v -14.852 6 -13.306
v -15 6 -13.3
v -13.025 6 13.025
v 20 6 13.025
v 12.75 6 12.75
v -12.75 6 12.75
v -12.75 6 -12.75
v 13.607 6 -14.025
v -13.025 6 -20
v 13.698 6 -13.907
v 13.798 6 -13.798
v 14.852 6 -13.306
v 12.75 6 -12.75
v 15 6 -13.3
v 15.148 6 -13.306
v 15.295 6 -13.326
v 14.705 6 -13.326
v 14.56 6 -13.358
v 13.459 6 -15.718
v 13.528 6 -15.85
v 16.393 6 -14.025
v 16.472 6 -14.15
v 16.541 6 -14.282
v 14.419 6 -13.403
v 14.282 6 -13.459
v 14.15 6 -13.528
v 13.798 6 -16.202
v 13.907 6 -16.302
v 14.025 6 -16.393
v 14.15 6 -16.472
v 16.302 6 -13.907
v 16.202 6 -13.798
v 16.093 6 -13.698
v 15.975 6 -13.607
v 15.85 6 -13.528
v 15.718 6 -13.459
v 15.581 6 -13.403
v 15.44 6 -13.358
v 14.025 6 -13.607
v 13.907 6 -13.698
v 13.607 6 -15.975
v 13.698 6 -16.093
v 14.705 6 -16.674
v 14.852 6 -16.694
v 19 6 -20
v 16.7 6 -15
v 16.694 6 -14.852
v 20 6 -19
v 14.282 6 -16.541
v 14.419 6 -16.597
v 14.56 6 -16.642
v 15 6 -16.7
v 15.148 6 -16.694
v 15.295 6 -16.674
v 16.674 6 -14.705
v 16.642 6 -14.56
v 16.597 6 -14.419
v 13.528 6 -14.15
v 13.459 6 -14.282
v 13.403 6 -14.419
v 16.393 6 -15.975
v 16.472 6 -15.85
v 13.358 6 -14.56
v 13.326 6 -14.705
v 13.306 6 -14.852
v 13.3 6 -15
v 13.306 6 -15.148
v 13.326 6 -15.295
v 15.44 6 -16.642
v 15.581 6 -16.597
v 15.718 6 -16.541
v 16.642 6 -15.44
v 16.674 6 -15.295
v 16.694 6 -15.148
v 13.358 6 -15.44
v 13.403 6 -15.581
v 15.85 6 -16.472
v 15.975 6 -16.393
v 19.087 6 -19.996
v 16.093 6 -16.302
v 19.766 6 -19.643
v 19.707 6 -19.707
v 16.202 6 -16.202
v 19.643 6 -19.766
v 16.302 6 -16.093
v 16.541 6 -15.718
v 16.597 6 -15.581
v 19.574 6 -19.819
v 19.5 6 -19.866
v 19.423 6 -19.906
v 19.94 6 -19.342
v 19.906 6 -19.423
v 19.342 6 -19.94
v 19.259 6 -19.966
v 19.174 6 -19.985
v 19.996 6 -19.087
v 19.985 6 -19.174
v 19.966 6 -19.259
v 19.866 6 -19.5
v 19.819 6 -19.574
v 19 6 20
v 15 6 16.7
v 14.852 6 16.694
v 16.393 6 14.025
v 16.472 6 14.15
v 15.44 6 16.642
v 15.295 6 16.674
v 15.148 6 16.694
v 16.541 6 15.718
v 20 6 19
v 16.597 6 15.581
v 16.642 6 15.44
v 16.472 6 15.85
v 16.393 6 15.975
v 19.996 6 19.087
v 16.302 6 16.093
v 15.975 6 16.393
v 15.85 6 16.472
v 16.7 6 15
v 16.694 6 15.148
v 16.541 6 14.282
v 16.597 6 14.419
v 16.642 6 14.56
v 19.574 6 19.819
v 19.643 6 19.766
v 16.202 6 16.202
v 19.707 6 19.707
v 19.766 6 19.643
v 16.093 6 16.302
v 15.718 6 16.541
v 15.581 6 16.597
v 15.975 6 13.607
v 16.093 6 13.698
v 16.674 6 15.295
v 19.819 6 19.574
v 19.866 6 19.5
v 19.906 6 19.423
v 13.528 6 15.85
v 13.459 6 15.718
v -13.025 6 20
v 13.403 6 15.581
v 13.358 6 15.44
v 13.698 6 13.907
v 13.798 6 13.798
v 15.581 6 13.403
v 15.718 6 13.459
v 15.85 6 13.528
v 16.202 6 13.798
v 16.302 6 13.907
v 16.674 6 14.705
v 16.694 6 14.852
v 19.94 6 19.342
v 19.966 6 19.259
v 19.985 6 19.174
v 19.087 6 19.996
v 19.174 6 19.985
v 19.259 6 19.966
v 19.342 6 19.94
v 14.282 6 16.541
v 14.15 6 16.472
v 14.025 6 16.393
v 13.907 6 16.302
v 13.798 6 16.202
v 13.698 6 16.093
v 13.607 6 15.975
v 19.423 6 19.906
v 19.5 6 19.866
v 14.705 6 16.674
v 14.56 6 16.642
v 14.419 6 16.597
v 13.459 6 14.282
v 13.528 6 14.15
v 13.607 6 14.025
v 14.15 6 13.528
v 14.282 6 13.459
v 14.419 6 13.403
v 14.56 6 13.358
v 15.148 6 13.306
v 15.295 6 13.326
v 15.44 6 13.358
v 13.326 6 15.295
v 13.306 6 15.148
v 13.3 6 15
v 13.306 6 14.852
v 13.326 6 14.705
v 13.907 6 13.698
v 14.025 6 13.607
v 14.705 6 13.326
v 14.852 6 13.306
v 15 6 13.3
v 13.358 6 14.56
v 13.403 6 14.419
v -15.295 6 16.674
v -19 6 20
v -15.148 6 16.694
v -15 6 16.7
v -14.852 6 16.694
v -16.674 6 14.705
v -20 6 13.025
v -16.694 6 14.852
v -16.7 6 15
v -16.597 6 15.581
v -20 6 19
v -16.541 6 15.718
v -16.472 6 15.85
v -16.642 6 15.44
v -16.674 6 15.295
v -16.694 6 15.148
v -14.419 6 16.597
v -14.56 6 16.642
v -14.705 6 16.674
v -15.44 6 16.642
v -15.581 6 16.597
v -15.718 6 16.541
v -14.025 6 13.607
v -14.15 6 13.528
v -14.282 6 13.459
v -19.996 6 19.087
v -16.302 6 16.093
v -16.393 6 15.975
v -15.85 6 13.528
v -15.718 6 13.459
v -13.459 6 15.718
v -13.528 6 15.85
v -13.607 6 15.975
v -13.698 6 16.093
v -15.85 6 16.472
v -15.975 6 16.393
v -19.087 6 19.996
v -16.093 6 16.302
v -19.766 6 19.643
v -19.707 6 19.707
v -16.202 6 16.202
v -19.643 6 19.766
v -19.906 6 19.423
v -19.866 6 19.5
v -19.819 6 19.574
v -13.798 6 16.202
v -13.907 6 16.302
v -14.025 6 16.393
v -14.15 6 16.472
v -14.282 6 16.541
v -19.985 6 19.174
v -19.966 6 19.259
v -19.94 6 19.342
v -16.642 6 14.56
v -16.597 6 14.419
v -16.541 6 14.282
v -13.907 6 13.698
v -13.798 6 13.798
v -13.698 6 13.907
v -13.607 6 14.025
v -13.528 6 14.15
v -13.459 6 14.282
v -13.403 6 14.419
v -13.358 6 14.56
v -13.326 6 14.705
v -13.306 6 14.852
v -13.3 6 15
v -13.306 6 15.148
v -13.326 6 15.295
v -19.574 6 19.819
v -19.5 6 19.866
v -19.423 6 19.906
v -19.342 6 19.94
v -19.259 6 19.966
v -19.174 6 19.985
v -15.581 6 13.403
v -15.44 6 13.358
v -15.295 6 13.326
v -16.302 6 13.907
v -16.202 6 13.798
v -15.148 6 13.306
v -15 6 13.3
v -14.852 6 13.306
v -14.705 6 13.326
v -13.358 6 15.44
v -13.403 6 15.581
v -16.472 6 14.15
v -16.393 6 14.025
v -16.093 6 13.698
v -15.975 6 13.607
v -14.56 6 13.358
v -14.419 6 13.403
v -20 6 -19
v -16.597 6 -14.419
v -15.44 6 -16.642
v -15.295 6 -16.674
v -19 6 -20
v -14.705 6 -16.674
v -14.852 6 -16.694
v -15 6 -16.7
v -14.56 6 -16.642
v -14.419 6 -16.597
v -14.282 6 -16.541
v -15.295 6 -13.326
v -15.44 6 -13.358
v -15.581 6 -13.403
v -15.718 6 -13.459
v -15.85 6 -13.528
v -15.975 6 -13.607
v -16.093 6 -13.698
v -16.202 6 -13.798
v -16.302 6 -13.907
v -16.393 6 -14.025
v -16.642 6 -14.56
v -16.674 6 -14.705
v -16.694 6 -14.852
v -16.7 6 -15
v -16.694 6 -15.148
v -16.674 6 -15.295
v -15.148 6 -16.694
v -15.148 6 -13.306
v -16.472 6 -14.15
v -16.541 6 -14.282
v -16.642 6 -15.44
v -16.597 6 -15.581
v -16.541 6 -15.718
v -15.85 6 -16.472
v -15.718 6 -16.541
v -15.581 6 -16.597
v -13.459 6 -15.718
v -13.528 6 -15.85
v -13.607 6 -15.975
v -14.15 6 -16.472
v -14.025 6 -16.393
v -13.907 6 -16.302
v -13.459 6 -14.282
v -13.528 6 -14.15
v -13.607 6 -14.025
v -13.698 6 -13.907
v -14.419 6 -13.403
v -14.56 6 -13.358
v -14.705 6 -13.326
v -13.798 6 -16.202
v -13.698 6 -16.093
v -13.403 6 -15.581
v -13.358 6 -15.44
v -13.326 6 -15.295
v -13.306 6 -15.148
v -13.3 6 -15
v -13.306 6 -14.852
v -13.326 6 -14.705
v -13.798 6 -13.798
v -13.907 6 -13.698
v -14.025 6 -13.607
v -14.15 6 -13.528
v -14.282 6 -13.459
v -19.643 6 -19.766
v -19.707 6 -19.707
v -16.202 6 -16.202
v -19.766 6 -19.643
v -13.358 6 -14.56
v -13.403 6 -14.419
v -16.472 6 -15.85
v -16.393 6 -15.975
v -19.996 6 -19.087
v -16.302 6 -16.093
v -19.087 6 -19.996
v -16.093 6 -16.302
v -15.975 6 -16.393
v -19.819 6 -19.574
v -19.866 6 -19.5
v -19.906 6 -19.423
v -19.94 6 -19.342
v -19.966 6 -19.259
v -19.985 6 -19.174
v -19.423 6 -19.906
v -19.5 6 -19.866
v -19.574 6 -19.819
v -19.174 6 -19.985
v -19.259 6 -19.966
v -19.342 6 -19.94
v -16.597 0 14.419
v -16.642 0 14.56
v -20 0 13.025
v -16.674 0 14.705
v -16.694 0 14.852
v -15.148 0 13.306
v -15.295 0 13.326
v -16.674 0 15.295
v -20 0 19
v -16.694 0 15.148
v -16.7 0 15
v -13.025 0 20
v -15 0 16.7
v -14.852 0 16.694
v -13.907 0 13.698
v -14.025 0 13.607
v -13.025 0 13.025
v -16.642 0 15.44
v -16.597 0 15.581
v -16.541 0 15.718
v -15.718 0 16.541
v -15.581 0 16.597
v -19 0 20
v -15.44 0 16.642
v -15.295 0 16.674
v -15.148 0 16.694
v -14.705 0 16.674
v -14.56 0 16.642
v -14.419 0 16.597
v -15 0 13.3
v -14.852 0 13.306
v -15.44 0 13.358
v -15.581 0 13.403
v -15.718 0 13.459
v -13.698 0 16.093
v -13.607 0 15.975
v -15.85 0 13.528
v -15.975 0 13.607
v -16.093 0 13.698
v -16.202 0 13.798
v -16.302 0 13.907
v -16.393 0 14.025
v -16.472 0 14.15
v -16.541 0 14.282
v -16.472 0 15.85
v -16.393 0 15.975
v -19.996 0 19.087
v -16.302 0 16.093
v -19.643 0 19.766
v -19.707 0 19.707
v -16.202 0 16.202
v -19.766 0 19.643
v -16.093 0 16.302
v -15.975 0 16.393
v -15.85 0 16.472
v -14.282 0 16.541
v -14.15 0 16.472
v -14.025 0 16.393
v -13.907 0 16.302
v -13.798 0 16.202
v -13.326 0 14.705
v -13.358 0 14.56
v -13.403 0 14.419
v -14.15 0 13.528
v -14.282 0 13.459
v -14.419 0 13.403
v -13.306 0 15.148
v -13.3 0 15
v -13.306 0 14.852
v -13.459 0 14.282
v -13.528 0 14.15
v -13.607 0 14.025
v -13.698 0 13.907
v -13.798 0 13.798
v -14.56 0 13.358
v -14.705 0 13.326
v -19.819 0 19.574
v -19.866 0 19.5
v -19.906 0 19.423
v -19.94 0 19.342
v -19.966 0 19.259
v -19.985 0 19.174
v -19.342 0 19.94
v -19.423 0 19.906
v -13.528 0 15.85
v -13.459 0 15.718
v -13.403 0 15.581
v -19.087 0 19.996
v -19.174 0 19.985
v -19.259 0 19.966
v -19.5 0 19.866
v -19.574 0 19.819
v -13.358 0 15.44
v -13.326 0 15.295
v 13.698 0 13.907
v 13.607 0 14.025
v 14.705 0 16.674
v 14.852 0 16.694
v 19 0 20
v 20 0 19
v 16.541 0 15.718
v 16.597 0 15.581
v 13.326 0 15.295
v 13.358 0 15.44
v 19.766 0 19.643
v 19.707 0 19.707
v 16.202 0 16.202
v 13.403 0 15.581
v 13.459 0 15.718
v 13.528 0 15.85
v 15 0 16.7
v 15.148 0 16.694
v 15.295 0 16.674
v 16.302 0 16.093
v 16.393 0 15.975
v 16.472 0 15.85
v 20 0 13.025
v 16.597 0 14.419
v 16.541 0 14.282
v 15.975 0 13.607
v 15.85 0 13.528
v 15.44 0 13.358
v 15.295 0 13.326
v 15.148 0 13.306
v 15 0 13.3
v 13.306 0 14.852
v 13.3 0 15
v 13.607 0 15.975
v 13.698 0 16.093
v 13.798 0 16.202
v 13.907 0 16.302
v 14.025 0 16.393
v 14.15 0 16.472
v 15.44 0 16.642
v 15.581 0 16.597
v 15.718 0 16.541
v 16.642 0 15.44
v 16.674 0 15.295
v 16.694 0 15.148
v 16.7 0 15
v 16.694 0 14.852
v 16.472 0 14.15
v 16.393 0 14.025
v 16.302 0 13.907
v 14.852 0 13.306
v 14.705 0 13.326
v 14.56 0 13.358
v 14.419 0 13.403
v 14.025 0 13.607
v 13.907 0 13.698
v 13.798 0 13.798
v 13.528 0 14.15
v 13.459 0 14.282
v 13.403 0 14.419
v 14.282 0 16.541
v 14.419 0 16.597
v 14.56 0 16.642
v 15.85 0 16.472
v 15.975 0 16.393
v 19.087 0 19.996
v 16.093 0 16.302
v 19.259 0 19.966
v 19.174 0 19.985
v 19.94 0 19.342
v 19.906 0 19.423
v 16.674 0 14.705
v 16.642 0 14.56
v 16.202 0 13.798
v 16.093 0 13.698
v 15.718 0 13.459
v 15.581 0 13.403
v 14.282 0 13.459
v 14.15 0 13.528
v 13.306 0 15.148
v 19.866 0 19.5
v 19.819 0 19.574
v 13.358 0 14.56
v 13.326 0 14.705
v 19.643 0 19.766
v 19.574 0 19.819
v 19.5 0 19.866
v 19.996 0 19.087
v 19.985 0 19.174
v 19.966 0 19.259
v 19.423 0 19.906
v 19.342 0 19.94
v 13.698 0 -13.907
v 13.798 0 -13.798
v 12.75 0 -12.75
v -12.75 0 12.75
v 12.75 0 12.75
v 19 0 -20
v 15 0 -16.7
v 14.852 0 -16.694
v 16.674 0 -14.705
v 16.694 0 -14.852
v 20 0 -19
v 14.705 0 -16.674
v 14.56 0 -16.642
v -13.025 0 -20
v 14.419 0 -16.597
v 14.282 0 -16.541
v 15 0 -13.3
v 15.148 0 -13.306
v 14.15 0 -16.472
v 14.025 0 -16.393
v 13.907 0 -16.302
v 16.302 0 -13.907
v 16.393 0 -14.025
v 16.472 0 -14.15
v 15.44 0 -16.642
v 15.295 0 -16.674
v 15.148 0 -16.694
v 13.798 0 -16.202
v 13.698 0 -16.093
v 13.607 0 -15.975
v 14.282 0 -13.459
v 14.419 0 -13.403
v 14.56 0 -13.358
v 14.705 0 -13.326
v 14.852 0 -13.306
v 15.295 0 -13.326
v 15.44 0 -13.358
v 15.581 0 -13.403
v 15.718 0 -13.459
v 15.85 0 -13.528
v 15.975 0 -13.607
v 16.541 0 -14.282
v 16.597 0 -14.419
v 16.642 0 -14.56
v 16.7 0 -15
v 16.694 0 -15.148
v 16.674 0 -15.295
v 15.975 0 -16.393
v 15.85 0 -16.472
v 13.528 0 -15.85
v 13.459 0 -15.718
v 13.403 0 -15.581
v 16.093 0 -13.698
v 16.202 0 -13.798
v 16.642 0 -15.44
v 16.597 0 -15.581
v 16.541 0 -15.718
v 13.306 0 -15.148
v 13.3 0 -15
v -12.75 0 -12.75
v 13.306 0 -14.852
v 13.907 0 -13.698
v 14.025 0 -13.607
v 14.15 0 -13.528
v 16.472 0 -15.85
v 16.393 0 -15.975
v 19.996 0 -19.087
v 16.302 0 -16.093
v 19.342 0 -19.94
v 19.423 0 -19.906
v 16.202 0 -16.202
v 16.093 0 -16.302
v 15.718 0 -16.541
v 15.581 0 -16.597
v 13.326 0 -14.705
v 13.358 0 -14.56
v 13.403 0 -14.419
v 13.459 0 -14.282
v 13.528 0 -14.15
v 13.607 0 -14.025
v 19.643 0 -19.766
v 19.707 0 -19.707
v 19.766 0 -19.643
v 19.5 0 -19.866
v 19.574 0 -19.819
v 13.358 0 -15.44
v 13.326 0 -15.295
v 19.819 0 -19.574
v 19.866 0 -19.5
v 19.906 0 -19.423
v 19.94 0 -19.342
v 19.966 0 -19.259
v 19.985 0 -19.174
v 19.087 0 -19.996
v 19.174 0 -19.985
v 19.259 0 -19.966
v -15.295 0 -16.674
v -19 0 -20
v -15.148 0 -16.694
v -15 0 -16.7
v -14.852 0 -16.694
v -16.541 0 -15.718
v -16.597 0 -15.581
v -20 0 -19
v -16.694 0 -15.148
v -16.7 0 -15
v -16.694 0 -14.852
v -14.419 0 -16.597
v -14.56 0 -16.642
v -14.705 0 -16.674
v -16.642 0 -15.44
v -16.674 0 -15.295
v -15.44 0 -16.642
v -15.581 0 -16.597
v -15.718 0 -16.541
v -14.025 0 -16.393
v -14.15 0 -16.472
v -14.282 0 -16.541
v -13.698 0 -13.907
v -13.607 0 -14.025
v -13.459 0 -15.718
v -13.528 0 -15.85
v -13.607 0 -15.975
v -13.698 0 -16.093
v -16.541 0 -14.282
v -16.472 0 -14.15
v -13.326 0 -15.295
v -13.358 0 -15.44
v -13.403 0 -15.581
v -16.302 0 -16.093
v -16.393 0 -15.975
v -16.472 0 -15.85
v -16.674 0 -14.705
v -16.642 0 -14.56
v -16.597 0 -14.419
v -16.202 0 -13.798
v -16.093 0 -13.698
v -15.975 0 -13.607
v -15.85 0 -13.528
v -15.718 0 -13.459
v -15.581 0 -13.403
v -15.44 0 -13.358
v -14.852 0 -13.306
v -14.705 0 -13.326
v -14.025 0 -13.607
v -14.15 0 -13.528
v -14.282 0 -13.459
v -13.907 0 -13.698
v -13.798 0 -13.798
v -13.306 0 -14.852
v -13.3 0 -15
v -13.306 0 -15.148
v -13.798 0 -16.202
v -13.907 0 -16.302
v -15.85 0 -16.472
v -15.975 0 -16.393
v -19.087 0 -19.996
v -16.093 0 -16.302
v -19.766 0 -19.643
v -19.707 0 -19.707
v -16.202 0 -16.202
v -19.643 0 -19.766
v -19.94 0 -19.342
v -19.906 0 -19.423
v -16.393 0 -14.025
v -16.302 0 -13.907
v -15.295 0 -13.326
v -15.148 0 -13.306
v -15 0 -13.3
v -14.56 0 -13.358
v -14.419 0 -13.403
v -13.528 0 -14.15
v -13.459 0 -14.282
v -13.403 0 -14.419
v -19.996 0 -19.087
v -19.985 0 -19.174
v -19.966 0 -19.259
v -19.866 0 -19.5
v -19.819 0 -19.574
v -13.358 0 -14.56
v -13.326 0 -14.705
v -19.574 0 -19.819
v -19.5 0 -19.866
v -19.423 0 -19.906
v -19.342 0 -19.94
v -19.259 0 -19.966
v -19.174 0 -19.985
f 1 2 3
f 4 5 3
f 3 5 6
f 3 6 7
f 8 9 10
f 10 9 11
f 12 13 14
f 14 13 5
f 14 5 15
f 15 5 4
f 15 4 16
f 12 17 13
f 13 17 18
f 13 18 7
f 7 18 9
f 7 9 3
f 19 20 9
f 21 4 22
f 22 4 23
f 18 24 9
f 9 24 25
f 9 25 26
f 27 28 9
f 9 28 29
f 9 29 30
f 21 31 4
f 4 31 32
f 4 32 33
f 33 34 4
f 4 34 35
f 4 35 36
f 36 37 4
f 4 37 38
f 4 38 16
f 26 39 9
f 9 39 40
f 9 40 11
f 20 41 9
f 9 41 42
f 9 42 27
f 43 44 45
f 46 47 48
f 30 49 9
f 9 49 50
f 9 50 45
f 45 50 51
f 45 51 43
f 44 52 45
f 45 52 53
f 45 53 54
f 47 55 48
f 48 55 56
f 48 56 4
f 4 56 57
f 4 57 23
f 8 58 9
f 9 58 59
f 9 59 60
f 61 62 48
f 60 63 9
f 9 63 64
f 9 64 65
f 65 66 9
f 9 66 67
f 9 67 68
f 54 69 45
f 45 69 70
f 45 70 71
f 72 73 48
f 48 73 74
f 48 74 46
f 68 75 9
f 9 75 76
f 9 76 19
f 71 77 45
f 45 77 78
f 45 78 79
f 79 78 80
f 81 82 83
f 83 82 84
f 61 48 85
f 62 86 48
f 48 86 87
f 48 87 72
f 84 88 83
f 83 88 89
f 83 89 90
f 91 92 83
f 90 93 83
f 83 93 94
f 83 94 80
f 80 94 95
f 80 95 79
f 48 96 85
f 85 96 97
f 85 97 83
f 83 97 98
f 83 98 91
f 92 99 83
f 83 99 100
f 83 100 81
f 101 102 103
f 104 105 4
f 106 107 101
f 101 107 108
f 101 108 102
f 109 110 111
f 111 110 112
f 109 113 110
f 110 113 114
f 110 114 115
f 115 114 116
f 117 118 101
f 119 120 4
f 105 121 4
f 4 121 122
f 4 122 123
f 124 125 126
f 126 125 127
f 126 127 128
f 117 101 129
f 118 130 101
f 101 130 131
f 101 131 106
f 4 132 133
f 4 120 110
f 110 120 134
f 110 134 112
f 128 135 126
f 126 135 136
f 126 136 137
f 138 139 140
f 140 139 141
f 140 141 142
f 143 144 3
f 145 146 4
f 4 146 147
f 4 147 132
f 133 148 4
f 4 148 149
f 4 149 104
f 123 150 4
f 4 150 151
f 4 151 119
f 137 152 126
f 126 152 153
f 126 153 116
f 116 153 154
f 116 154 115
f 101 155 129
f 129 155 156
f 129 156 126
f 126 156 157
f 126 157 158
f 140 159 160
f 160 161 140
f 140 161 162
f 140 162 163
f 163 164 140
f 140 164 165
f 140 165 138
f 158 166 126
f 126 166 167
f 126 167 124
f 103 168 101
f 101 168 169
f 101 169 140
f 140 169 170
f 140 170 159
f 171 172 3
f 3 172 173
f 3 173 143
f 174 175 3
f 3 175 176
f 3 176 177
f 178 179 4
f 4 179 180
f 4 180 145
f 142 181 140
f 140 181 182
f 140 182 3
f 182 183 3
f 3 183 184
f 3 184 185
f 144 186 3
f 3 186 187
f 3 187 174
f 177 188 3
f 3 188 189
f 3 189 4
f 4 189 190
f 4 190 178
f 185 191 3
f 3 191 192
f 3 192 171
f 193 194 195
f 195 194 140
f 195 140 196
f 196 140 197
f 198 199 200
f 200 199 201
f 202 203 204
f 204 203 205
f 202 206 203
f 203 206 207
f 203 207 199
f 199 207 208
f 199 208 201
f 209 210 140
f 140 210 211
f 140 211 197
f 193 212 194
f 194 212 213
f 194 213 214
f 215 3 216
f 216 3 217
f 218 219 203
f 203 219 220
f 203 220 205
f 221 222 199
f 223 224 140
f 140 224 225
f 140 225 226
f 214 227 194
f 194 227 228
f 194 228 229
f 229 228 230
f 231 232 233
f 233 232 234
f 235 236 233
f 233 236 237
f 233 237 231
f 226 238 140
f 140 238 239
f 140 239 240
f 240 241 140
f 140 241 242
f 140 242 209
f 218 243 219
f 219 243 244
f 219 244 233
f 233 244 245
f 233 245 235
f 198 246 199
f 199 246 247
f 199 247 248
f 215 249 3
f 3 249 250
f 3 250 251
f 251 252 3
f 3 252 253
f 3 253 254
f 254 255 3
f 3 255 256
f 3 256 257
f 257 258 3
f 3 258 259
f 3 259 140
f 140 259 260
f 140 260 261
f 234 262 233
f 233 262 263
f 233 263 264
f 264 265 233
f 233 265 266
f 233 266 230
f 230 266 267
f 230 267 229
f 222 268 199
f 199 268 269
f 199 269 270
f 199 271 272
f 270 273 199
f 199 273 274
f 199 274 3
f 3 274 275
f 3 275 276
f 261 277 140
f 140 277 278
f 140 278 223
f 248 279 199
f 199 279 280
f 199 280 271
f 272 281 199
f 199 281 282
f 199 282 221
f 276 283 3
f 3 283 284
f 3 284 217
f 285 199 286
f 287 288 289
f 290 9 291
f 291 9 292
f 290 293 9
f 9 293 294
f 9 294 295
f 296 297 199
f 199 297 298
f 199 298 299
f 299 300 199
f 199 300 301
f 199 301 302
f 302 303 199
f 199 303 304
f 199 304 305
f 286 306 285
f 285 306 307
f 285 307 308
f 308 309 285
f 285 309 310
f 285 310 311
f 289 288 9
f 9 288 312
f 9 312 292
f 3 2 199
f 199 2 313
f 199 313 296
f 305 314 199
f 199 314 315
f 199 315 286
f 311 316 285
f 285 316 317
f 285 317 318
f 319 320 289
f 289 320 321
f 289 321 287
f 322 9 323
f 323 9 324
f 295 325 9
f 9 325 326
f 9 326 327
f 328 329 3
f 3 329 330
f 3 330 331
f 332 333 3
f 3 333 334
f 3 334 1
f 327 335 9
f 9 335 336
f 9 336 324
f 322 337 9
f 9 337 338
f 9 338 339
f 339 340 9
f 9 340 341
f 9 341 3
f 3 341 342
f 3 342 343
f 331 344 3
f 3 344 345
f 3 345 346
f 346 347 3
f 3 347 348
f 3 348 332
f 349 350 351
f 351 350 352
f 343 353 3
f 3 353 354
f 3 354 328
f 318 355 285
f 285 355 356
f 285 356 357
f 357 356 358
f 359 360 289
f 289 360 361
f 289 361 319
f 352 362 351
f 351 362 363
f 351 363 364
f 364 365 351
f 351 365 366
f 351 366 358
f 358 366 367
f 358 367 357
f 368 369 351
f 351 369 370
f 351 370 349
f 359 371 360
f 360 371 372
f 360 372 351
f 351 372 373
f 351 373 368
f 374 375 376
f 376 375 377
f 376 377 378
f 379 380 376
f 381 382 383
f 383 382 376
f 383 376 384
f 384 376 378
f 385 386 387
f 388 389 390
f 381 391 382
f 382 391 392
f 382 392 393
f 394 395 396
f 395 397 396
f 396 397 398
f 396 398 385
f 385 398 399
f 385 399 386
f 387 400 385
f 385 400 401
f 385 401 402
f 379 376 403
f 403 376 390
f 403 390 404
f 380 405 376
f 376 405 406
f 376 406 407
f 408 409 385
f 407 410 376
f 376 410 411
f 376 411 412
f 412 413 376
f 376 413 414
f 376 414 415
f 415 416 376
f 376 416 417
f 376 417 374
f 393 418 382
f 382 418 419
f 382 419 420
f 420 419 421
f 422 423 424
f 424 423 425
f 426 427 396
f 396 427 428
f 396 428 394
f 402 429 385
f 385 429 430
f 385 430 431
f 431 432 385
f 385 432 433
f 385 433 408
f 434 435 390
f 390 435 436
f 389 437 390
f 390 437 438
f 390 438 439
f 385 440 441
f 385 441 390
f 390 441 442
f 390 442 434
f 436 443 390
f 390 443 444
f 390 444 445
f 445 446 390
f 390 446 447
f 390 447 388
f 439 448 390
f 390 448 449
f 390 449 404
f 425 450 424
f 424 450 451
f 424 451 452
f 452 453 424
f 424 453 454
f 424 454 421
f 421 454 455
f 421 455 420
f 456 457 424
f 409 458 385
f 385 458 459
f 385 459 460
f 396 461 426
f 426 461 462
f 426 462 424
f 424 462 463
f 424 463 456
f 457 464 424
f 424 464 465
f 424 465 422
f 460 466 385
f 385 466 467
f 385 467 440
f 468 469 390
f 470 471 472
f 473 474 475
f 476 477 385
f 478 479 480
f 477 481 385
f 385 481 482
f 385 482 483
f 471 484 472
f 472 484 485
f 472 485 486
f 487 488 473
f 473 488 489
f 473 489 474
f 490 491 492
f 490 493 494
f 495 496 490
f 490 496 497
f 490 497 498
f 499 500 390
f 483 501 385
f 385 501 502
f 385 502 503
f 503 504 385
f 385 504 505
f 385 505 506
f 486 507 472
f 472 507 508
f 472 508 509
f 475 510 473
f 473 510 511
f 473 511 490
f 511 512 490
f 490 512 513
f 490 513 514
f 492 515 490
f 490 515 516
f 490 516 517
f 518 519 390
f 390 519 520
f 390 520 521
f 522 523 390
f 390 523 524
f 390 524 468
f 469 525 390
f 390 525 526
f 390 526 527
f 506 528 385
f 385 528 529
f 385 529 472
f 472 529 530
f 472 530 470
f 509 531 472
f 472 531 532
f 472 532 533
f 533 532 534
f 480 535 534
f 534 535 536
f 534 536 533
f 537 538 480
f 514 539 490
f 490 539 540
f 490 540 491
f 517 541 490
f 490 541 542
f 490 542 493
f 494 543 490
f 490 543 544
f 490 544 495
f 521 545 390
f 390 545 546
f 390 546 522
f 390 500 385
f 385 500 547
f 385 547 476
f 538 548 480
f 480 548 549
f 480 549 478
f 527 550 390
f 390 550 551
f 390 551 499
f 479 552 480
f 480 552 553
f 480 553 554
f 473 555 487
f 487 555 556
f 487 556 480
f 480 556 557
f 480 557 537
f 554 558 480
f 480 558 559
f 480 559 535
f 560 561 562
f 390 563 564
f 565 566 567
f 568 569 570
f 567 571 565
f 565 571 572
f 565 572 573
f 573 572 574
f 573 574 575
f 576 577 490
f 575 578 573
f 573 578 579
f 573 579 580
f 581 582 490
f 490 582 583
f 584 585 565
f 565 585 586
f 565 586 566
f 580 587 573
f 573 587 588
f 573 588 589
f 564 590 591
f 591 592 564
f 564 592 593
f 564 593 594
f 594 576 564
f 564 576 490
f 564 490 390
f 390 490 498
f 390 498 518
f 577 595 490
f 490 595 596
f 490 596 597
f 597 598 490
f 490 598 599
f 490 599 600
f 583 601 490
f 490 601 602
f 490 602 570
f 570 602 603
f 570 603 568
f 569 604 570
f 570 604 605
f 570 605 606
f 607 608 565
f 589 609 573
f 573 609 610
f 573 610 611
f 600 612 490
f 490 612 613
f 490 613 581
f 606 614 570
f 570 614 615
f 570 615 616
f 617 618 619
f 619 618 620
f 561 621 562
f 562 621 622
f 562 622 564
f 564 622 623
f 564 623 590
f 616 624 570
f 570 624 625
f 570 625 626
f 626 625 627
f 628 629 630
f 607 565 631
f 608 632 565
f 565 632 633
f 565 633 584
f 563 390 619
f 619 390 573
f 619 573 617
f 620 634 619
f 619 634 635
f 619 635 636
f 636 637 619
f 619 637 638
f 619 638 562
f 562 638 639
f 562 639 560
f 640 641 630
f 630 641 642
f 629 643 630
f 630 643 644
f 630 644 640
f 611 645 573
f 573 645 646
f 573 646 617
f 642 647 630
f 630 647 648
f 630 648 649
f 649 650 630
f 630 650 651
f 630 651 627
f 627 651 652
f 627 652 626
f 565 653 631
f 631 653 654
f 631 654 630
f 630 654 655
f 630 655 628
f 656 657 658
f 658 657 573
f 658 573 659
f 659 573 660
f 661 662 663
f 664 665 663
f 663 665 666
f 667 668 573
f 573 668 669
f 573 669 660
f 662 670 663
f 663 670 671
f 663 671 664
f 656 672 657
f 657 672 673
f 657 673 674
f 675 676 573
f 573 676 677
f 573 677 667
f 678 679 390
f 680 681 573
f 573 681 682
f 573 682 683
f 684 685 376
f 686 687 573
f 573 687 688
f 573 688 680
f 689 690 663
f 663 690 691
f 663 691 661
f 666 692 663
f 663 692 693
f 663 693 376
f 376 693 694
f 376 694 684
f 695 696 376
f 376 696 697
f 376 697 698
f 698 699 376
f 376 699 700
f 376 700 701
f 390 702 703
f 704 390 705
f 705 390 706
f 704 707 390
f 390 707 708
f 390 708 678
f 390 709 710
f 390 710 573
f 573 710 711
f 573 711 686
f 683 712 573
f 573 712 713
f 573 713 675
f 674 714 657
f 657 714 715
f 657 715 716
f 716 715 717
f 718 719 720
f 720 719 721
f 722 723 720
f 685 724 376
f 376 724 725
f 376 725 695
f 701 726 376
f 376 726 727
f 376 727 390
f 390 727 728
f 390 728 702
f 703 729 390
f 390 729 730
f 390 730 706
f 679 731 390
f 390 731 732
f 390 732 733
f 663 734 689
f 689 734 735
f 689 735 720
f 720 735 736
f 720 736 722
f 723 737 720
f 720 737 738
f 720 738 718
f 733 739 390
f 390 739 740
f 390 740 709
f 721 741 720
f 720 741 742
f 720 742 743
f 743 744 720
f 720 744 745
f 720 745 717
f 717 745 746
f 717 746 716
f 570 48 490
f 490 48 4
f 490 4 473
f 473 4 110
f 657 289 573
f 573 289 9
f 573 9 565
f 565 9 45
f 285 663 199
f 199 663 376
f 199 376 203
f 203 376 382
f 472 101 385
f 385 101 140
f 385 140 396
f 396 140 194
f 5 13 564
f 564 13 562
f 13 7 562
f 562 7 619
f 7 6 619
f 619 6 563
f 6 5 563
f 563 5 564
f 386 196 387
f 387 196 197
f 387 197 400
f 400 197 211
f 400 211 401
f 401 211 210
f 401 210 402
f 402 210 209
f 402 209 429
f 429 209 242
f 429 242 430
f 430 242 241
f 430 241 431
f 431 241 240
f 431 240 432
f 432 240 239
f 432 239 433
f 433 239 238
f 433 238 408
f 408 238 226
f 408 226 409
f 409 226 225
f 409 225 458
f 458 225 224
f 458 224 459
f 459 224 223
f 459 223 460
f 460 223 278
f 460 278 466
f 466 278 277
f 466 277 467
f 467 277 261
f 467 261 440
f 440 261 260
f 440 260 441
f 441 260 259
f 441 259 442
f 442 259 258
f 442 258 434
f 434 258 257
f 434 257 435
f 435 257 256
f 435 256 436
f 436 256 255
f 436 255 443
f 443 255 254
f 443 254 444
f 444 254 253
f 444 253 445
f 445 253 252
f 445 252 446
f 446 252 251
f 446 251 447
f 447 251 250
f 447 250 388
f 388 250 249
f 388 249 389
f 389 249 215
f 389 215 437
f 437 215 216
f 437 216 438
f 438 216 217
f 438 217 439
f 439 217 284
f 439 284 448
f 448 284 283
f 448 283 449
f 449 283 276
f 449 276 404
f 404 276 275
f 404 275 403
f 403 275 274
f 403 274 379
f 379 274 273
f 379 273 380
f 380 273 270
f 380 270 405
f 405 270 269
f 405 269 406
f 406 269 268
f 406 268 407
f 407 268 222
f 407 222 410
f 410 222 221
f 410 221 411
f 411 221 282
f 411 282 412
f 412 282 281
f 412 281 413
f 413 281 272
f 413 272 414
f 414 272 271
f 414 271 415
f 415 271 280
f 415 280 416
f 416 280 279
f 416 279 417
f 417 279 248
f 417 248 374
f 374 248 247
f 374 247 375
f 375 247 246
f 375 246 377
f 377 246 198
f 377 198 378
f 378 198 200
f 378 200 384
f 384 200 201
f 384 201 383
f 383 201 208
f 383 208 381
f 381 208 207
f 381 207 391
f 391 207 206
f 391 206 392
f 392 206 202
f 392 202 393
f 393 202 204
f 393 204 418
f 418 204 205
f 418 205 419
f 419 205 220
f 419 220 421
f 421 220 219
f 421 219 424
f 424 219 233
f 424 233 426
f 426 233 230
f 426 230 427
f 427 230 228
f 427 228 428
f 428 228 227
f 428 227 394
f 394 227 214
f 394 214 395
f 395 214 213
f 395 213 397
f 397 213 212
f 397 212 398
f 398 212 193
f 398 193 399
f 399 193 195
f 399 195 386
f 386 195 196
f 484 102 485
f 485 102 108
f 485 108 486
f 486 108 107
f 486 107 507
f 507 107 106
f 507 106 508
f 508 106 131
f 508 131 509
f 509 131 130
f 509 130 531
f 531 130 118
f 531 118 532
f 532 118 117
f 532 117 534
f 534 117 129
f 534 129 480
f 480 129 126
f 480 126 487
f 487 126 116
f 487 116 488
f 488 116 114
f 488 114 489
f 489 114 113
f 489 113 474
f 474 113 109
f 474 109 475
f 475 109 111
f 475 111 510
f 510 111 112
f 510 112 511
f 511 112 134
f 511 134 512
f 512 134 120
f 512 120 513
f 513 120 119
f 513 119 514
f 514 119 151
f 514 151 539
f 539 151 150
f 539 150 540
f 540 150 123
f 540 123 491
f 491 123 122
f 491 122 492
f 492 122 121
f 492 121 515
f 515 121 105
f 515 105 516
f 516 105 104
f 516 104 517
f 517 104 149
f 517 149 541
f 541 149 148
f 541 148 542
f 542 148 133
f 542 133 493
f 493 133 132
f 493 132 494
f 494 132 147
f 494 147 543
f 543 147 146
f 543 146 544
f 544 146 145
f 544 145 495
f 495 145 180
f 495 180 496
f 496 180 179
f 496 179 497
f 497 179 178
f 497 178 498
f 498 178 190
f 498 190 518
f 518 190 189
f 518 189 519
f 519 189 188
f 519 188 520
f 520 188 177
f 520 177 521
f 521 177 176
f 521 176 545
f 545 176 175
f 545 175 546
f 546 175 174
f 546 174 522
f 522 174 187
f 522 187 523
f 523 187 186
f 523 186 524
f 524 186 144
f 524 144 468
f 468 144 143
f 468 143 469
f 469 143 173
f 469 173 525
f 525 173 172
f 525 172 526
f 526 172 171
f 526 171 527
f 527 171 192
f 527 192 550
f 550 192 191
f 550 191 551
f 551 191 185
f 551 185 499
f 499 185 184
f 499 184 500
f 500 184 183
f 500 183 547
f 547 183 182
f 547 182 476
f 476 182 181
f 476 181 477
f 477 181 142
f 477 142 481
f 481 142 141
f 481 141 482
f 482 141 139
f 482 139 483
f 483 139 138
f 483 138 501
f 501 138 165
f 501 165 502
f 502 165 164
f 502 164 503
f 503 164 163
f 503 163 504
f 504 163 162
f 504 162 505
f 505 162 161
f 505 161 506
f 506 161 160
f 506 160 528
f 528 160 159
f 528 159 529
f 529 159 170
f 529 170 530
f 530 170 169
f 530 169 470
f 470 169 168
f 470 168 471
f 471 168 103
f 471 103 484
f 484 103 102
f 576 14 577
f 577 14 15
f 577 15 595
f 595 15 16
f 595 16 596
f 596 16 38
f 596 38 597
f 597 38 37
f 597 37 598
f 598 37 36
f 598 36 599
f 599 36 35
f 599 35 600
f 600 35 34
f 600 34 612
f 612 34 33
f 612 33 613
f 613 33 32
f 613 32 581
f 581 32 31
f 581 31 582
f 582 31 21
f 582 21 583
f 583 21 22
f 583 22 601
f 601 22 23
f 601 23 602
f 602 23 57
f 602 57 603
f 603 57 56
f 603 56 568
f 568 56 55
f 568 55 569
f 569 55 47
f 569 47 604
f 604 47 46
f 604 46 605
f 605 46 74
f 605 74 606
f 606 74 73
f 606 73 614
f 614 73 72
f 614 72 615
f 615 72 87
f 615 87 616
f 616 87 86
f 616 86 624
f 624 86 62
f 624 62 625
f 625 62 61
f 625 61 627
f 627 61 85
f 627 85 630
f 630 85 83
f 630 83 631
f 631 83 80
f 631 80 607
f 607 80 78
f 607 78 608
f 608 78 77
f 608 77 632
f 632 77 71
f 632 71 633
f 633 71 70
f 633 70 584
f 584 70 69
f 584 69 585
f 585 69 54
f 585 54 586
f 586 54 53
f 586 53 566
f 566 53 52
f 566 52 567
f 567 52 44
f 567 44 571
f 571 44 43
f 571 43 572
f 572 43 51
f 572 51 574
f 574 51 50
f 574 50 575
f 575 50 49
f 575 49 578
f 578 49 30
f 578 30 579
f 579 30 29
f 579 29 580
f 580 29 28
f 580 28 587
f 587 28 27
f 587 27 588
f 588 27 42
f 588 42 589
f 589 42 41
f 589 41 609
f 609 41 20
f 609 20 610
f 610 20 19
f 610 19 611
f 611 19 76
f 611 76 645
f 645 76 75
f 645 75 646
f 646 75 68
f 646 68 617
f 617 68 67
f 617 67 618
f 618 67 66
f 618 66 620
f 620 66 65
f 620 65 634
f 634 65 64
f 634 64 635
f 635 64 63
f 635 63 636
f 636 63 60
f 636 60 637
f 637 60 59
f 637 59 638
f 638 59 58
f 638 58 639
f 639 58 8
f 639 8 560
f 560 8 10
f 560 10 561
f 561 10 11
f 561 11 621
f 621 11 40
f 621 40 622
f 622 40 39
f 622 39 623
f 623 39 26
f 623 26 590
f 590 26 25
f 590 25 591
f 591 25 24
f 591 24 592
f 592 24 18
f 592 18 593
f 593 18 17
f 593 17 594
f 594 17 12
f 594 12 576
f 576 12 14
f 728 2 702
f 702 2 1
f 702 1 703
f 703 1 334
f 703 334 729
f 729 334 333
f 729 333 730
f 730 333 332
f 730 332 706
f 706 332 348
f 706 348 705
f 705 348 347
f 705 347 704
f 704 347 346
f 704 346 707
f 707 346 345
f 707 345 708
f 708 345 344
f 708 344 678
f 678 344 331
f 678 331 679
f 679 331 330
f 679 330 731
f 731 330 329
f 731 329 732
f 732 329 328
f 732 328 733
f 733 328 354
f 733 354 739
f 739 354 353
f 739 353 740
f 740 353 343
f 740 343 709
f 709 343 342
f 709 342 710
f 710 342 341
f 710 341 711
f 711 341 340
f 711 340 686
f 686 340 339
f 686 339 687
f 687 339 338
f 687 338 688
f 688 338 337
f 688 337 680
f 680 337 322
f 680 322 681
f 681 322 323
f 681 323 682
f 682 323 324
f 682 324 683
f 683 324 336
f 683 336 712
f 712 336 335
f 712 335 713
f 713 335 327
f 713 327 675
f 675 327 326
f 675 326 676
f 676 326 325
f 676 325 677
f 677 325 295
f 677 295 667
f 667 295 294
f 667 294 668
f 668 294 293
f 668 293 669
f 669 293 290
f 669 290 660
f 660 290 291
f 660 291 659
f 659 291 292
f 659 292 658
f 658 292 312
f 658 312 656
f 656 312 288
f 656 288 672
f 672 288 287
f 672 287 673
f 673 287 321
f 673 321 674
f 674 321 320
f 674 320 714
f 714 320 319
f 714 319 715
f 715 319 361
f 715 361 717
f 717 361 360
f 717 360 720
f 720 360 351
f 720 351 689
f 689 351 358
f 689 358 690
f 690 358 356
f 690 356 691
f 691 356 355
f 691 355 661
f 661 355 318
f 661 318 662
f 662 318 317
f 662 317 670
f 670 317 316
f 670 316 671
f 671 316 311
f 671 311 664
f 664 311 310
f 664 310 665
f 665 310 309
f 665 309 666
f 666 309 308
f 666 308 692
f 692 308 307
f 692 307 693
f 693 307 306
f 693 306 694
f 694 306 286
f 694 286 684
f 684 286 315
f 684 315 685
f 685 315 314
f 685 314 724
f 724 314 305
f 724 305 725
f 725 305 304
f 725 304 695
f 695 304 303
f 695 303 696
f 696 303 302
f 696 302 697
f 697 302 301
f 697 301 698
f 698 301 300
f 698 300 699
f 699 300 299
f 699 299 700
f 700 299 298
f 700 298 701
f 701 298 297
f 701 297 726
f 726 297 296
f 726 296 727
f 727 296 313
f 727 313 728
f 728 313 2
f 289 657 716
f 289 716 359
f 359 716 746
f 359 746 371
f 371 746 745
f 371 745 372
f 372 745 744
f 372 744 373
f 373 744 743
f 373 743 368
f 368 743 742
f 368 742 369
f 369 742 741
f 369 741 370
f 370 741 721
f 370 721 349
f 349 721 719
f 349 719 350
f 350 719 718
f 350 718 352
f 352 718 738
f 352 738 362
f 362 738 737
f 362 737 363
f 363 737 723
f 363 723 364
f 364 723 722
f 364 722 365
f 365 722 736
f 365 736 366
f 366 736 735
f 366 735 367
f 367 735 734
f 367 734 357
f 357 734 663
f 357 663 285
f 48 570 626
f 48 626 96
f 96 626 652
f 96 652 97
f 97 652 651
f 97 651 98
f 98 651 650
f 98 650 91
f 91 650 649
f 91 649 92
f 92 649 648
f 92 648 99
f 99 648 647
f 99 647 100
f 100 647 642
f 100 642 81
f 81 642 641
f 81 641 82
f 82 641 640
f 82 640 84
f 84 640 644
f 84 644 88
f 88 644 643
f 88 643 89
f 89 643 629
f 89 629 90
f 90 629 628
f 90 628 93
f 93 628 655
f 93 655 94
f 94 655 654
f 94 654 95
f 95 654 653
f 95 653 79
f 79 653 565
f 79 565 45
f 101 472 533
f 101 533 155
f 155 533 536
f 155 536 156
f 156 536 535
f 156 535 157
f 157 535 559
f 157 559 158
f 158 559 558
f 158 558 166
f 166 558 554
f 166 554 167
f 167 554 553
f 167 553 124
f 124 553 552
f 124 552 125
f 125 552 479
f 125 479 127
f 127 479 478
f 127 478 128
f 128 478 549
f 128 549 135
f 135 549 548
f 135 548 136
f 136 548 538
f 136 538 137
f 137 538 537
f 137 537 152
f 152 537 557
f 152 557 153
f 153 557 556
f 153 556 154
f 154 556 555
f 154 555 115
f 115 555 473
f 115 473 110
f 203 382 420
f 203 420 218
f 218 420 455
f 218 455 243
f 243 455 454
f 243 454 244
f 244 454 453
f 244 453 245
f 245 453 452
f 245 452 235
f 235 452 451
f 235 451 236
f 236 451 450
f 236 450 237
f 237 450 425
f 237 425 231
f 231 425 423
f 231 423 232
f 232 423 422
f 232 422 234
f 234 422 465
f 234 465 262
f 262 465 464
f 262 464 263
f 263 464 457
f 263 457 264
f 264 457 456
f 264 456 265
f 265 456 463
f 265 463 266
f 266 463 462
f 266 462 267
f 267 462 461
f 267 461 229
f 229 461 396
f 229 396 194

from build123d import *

# Parameters (mm, degrees)
SKETCH1_W           = 40
SKETCH1_H           = 40
SKETCH1_W_2         = 25.5
SKETCH1_H_2         = 25.5
BOSS_EXTRUDE1_DEPTH = 6
SKETCH5_R           = 1.7
CUT_EXTRUDE1_DEPTH  = 29.91366459
FILLET1_R           = 1


with BuildPart() as part:
    # Sketch1 → Boss-Extrude1 (new body)
    with BuildSketch(Plane(origin=(0, 0, 0), x_dir=(1, 0, 0), z_dir=(0, 1, 0))):
        Rectangle(SKETCH1_W, SKETCH1_H)
        Rectangle(SKETCH1_W_2, SKETCH1_H_2, mode=Mode.SUBTRACT)
    extrude(amount=BOSS_EXTRUDE1_DEPTH)

    # Sketch5 → Cut-Extrude1 (cut, through all)
    with BuildSketch(Plane.XZ.offset(-6)):
        with Locations(Location((-15, 15, 0), (0, 0, 270))):
            Circle(SKETCH5_R)
        with Locations(Location((-15, -15, 0), (0, 0, 270))):
            Circle(SKETCH5_R)
        with Locations(Location((15, -15, 0), (0, 0, 270))):
            Circle(SKETCH5_R)
        with Locations(Location((15, 15, 0), (0, 0, 270))):
            Circle(SKETCH5_R)
    extrude(amount=CUT_EXTRUDE1_DEPTH, mode=Mode.SUBTRACT)

    # Fillet1
    fillet1_edges = [part.edges().sort_by_distance(p)[0] for p in [
        (20, 3, 20),
        (-20, 3, 20),
        (-20, 3, -20),
        (20, 3, -20),
    ]]
    fillet(fillet1_edges, radius=FILLET1_R)


solid = part.part
